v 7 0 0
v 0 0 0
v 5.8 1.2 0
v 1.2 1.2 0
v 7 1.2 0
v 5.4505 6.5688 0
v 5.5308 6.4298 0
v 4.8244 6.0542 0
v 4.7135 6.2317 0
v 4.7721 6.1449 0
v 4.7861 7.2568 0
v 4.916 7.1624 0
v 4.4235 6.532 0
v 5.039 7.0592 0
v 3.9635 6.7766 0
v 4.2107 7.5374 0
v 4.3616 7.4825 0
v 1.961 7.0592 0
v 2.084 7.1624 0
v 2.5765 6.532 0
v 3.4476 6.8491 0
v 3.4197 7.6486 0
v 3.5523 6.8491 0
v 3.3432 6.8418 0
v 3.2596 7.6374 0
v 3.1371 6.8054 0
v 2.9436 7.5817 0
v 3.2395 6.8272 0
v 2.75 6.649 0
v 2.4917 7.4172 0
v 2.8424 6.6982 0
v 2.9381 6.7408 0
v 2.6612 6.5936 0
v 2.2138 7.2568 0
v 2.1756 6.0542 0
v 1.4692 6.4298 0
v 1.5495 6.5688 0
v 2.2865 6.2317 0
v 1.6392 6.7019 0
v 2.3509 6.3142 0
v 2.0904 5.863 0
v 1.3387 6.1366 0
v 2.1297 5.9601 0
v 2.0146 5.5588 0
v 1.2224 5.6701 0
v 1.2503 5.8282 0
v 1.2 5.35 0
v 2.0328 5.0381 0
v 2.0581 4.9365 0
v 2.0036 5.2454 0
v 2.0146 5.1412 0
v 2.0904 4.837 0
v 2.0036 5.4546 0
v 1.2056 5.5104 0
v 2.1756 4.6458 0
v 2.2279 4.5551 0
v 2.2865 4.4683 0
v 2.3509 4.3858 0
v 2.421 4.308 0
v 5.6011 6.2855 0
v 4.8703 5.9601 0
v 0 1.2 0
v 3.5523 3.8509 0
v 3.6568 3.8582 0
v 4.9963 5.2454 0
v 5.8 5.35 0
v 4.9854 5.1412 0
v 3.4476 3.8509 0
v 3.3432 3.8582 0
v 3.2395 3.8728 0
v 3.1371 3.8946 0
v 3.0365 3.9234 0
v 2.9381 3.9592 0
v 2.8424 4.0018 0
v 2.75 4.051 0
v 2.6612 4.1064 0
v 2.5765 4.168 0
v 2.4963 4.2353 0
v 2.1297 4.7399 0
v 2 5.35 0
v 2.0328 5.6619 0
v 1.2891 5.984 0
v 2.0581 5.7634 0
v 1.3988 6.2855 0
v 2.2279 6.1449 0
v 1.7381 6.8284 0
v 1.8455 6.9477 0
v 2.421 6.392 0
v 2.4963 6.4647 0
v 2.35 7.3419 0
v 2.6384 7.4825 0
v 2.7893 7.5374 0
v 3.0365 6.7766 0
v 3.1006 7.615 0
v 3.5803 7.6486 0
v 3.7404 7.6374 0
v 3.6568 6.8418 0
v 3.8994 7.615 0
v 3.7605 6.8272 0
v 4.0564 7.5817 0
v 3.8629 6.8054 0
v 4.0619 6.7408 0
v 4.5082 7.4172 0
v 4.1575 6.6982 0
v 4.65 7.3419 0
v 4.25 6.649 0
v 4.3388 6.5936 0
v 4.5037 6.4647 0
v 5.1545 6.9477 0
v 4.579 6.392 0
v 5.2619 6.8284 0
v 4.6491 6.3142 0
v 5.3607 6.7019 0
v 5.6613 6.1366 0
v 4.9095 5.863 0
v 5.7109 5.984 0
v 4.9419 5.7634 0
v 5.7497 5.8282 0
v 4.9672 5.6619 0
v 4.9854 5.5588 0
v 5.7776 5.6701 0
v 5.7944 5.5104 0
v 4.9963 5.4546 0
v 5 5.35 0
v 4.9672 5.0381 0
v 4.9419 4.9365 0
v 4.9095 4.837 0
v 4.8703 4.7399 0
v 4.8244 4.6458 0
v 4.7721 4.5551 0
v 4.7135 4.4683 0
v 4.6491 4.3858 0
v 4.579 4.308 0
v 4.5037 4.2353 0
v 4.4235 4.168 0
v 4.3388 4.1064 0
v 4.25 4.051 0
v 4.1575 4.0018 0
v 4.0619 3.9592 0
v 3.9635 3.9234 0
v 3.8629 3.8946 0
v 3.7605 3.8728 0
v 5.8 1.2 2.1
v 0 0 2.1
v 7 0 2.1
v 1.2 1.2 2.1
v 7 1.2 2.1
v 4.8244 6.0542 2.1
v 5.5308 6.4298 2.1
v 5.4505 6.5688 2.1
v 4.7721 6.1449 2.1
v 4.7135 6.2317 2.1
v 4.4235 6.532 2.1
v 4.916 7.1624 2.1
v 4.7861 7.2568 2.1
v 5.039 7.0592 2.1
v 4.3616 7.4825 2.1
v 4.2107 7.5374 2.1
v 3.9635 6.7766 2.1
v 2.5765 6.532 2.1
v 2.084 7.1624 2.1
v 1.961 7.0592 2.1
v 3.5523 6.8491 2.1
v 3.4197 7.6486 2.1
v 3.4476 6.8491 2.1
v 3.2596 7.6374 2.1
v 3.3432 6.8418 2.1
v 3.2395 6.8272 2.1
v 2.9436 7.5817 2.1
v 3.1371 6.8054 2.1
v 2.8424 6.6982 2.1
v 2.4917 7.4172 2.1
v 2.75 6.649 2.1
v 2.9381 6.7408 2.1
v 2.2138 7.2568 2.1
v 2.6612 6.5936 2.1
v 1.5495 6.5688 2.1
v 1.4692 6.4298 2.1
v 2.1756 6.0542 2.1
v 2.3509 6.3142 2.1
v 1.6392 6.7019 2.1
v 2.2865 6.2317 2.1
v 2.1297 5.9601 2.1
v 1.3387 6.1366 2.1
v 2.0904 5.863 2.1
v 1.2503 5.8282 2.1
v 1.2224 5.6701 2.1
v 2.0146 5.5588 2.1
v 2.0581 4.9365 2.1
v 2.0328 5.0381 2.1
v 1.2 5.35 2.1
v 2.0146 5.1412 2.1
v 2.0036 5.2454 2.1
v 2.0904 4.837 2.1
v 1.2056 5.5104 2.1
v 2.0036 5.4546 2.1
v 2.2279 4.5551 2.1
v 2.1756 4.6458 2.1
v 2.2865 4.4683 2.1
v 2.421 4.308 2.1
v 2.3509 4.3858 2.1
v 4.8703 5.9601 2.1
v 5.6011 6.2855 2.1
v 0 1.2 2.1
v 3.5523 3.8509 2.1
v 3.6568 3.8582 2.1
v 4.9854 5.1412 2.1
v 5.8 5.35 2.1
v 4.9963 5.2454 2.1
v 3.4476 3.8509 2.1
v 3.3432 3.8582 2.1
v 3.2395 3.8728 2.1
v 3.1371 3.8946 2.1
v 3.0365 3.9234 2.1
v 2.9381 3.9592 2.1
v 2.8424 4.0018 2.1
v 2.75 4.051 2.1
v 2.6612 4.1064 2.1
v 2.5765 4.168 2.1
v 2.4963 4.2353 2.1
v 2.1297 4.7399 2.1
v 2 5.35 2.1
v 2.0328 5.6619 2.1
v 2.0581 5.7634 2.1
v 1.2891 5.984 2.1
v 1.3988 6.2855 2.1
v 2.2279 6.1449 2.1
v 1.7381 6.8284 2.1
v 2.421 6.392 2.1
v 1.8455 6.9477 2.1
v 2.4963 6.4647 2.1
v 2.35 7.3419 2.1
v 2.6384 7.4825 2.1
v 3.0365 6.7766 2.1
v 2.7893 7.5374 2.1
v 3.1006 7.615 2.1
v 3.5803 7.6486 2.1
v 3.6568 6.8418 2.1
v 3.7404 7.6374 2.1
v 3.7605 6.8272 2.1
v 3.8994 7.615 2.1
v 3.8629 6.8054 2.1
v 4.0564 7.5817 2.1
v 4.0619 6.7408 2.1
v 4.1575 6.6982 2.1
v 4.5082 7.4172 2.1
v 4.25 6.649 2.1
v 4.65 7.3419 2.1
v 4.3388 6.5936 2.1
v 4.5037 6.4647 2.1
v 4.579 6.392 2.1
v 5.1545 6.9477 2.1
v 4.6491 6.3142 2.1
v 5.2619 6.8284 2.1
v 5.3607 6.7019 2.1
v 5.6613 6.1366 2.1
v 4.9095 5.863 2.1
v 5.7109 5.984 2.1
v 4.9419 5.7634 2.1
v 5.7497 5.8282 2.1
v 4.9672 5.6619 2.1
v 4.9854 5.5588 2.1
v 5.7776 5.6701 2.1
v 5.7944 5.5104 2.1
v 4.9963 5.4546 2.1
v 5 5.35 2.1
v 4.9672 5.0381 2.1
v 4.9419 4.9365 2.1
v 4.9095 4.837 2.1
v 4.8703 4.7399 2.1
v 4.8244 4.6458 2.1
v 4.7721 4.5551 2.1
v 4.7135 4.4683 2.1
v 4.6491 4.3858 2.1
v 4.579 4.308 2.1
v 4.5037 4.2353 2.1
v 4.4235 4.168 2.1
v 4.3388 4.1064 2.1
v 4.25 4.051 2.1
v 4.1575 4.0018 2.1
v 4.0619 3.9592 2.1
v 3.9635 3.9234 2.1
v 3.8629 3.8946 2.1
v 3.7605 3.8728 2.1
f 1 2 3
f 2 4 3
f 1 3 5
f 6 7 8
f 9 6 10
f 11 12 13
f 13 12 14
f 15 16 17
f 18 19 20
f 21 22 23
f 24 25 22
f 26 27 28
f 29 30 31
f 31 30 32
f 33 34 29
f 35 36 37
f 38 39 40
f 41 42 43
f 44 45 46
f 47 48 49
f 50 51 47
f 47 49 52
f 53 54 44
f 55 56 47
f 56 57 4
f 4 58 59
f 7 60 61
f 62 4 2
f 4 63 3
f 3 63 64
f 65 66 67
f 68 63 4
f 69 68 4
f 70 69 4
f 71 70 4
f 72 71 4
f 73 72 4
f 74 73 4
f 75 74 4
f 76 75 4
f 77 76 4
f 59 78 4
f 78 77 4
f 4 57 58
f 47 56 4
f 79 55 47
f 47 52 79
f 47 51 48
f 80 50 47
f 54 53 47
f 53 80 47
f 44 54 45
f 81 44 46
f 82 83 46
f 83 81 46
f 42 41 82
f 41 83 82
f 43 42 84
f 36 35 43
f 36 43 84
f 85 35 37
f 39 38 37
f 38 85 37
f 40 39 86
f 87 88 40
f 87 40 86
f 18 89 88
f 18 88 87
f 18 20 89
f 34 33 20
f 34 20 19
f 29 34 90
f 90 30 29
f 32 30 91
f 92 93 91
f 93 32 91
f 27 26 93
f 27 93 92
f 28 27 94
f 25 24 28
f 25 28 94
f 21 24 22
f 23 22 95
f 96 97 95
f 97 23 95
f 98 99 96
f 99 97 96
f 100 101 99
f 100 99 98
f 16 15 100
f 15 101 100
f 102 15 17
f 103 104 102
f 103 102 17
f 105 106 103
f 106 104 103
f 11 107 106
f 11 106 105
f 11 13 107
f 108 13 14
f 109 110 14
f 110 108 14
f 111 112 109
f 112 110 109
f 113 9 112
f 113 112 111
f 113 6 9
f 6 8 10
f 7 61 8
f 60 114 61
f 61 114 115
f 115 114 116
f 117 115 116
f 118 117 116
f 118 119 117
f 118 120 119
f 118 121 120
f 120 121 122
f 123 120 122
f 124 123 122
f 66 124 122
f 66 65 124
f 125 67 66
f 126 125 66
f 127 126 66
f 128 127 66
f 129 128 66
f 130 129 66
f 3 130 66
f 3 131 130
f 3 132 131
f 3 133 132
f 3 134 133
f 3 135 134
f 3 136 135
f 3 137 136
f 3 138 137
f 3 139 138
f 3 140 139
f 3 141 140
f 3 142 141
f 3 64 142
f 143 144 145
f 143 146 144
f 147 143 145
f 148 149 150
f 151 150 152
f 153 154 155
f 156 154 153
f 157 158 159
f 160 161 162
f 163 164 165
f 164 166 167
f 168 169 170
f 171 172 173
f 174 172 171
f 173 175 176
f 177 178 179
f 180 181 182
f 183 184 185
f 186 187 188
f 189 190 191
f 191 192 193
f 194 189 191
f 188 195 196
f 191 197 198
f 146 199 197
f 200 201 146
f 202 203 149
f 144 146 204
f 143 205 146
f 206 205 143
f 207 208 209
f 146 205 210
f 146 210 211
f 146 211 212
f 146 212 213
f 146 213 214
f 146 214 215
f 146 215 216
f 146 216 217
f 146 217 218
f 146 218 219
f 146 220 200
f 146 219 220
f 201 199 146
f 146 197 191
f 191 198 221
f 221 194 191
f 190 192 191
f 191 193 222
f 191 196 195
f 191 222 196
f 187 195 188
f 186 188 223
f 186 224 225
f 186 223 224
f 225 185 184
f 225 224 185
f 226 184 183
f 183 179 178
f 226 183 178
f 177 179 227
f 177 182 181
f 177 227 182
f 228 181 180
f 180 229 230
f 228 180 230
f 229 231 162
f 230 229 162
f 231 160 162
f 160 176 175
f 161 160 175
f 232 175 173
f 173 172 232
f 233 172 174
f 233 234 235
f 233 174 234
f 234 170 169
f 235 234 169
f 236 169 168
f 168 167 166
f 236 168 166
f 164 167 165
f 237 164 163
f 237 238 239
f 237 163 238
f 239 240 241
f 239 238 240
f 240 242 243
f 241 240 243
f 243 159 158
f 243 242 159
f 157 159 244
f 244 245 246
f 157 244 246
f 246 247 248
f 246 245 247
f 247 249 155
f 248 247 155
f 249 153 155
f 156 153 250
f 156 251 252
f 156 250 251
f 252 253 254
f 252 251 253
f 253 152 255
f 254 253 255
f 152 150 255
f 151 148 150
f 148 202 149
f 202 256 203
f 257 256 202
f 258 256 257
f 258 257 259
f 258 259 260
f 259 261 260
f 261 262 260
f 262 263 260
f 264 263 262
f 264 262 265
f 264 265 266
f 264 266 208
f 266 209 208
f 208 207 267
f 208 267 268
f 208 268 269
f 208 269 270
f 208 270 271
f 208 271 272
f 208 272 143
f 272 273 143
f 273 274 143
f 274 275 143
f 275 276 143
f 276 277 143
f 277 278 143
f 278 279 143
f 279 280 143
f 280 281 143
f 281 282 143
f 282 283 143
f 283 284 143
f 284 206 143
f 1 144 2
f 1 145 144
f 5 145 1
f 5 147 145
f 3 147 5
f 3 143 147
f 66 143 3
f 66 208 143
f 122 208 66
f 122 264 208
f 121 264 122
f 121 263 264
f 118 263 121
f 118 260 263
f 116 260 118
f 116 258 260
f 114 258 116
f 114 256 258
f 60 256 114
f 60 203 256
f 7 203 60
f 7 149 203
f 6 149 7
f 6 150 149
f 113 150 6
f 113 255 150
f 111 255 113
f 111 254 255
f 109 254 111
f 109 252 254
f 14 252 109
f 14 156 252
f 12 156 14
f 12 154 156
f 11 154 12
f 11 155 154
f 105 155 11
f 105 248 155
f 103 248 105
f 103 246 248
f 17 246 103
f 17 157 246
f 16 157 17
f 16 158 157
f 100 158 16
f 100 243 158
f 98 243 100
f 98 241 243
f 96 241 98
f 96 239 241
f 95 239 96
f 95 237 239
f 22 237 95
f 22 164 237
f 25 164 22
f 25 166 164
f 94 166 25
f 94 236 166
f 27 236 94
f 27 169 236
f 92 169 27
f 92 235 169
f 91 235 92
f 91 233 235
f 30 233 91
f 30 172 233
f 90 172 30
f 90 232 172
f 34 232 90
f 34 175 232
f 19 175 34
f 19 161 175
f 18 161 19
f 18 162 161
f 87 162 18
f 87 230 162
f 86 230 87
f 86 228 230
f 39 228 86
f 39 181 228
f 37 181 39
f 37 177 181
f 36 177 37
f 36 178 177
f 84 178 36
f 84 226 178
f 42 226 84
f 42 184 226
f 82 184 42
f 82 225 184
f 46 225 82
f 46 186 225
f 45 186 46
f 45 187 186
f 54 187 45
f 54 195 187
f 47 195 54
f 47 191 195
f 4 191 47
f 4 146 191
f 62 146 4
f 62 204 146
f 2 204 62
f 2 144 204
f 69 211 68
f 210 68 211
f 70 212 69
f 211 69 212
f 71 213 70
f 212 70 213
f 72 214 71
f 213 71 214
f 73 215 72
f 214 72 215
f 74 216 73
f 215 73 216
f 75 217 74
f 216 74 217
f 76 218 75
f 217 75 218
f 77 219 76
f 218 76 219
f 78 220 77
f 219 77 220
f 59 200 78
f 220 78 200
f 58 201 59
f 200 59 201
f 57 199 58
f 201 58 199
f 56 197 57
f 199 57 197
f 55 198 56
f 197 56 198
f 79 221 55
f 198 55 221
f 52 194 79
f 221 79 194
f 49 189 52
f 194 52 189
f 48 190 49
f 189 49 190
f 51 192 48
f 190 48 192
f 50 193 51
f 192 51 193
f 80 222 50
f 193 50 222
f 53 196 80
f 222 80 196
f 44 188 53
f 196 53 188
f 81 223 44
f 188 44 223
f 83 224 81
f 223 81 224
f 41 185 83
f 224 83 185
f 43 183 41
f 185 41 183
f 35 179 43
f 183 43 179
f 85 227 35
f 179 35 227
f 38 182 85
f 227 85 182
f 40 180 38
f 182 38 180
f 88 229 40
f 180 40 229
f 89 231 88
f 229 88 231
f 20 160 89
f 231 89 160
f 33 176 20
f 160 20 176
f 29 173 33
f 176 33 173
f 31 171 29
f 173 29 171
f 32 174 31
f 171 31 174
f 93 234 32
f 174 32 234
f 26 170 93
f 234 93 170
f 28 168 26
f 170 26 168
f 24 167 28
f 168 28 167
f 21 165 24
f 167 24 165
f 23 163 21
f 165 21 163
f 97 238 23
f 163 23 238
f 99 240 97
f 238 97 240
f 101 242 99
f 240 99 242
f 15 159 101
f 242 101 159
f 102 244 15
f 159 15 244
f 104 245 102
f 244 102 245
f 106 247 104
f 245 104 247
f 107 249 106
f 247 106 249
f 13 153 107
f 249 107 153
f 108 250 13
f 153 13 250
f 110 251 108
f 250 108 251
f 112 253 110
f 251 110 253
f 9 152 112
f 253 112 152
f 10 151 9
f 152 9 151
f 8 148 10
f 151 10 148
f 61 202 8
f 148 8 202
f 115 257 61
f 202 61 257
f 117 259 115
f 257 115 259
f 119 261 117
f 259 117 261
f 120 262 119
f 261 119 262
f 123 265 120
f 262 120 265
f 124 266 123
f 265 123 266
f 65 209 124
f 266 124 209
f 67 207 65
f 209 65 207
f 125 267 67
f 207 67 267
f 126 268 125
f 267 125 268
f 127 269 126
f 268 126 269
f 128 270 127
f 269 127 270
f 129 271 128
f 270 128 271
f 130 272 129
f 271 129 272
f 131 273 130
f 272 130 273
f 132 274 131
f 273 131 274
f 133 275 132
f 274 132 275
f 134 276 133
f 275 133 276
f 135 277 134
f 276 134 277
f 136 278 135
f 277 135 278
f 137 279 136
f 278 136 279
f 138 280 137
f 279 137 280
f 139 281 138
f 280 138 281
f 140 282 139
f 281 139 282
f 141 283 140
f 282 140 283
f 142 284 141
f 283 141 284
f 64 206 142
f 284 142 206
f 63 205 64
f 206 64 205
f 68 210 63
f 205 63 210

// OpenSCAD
/*
Author: Robert E. Blue

This work is licensed under the Creative Commons Attribution 3.0 Unported
License. To view a copy of this license, visit
http://creativecommons.org/licenses/by/3.0/ or send a letter to Creative
Commons, PO Box 1866, Mountain View, CA 94042, USA.
*/

// Dimensions for hole at center of snowball maker cup
hole_rad = 2.5;
hole_height = 2.1;
hole_tolerance = .4;

// Dimensions for base of loop that sites inside the cup to hold it in
base_length = (.2 * 6);
base_width = hole_rad * 2 + 2;

// Dimensions for stem that fits through the hole in the cup
stem_length = hole_height + (hole_height / 2) + 1;
stem_width = (hole_rad * 2) - hole_tolerance;
stem_left = (base_width - stem_width) / 2;

// Dimensions for the loop for attaching string
loop_rad = stem_width / 2;
loop_bottom = base_length + stem_length + loop_rad;
loop_left = base_width / 2;
loop_thickness = 1;

linear_extrude(height = hole_rad - hole_tolerance)
{
    // Base
    square([ base_width, base_length ], center = false);

    $fn = 90;
    difference()
    {
        union()
        {
            // Stem
            translate([ stem_left, base_length ])
                square([ stem_width, stem_length ], center = false);

            // Loop
            translate([ loop_left, loop_bottom - loop_rad ])
                circle(r = loop_rad);
        }

        // Hole in loop
        translate([ loop_left, loop_bottom - loop_rad ])
            circle(r = hole_rad - loop_thickness);
    }
}
